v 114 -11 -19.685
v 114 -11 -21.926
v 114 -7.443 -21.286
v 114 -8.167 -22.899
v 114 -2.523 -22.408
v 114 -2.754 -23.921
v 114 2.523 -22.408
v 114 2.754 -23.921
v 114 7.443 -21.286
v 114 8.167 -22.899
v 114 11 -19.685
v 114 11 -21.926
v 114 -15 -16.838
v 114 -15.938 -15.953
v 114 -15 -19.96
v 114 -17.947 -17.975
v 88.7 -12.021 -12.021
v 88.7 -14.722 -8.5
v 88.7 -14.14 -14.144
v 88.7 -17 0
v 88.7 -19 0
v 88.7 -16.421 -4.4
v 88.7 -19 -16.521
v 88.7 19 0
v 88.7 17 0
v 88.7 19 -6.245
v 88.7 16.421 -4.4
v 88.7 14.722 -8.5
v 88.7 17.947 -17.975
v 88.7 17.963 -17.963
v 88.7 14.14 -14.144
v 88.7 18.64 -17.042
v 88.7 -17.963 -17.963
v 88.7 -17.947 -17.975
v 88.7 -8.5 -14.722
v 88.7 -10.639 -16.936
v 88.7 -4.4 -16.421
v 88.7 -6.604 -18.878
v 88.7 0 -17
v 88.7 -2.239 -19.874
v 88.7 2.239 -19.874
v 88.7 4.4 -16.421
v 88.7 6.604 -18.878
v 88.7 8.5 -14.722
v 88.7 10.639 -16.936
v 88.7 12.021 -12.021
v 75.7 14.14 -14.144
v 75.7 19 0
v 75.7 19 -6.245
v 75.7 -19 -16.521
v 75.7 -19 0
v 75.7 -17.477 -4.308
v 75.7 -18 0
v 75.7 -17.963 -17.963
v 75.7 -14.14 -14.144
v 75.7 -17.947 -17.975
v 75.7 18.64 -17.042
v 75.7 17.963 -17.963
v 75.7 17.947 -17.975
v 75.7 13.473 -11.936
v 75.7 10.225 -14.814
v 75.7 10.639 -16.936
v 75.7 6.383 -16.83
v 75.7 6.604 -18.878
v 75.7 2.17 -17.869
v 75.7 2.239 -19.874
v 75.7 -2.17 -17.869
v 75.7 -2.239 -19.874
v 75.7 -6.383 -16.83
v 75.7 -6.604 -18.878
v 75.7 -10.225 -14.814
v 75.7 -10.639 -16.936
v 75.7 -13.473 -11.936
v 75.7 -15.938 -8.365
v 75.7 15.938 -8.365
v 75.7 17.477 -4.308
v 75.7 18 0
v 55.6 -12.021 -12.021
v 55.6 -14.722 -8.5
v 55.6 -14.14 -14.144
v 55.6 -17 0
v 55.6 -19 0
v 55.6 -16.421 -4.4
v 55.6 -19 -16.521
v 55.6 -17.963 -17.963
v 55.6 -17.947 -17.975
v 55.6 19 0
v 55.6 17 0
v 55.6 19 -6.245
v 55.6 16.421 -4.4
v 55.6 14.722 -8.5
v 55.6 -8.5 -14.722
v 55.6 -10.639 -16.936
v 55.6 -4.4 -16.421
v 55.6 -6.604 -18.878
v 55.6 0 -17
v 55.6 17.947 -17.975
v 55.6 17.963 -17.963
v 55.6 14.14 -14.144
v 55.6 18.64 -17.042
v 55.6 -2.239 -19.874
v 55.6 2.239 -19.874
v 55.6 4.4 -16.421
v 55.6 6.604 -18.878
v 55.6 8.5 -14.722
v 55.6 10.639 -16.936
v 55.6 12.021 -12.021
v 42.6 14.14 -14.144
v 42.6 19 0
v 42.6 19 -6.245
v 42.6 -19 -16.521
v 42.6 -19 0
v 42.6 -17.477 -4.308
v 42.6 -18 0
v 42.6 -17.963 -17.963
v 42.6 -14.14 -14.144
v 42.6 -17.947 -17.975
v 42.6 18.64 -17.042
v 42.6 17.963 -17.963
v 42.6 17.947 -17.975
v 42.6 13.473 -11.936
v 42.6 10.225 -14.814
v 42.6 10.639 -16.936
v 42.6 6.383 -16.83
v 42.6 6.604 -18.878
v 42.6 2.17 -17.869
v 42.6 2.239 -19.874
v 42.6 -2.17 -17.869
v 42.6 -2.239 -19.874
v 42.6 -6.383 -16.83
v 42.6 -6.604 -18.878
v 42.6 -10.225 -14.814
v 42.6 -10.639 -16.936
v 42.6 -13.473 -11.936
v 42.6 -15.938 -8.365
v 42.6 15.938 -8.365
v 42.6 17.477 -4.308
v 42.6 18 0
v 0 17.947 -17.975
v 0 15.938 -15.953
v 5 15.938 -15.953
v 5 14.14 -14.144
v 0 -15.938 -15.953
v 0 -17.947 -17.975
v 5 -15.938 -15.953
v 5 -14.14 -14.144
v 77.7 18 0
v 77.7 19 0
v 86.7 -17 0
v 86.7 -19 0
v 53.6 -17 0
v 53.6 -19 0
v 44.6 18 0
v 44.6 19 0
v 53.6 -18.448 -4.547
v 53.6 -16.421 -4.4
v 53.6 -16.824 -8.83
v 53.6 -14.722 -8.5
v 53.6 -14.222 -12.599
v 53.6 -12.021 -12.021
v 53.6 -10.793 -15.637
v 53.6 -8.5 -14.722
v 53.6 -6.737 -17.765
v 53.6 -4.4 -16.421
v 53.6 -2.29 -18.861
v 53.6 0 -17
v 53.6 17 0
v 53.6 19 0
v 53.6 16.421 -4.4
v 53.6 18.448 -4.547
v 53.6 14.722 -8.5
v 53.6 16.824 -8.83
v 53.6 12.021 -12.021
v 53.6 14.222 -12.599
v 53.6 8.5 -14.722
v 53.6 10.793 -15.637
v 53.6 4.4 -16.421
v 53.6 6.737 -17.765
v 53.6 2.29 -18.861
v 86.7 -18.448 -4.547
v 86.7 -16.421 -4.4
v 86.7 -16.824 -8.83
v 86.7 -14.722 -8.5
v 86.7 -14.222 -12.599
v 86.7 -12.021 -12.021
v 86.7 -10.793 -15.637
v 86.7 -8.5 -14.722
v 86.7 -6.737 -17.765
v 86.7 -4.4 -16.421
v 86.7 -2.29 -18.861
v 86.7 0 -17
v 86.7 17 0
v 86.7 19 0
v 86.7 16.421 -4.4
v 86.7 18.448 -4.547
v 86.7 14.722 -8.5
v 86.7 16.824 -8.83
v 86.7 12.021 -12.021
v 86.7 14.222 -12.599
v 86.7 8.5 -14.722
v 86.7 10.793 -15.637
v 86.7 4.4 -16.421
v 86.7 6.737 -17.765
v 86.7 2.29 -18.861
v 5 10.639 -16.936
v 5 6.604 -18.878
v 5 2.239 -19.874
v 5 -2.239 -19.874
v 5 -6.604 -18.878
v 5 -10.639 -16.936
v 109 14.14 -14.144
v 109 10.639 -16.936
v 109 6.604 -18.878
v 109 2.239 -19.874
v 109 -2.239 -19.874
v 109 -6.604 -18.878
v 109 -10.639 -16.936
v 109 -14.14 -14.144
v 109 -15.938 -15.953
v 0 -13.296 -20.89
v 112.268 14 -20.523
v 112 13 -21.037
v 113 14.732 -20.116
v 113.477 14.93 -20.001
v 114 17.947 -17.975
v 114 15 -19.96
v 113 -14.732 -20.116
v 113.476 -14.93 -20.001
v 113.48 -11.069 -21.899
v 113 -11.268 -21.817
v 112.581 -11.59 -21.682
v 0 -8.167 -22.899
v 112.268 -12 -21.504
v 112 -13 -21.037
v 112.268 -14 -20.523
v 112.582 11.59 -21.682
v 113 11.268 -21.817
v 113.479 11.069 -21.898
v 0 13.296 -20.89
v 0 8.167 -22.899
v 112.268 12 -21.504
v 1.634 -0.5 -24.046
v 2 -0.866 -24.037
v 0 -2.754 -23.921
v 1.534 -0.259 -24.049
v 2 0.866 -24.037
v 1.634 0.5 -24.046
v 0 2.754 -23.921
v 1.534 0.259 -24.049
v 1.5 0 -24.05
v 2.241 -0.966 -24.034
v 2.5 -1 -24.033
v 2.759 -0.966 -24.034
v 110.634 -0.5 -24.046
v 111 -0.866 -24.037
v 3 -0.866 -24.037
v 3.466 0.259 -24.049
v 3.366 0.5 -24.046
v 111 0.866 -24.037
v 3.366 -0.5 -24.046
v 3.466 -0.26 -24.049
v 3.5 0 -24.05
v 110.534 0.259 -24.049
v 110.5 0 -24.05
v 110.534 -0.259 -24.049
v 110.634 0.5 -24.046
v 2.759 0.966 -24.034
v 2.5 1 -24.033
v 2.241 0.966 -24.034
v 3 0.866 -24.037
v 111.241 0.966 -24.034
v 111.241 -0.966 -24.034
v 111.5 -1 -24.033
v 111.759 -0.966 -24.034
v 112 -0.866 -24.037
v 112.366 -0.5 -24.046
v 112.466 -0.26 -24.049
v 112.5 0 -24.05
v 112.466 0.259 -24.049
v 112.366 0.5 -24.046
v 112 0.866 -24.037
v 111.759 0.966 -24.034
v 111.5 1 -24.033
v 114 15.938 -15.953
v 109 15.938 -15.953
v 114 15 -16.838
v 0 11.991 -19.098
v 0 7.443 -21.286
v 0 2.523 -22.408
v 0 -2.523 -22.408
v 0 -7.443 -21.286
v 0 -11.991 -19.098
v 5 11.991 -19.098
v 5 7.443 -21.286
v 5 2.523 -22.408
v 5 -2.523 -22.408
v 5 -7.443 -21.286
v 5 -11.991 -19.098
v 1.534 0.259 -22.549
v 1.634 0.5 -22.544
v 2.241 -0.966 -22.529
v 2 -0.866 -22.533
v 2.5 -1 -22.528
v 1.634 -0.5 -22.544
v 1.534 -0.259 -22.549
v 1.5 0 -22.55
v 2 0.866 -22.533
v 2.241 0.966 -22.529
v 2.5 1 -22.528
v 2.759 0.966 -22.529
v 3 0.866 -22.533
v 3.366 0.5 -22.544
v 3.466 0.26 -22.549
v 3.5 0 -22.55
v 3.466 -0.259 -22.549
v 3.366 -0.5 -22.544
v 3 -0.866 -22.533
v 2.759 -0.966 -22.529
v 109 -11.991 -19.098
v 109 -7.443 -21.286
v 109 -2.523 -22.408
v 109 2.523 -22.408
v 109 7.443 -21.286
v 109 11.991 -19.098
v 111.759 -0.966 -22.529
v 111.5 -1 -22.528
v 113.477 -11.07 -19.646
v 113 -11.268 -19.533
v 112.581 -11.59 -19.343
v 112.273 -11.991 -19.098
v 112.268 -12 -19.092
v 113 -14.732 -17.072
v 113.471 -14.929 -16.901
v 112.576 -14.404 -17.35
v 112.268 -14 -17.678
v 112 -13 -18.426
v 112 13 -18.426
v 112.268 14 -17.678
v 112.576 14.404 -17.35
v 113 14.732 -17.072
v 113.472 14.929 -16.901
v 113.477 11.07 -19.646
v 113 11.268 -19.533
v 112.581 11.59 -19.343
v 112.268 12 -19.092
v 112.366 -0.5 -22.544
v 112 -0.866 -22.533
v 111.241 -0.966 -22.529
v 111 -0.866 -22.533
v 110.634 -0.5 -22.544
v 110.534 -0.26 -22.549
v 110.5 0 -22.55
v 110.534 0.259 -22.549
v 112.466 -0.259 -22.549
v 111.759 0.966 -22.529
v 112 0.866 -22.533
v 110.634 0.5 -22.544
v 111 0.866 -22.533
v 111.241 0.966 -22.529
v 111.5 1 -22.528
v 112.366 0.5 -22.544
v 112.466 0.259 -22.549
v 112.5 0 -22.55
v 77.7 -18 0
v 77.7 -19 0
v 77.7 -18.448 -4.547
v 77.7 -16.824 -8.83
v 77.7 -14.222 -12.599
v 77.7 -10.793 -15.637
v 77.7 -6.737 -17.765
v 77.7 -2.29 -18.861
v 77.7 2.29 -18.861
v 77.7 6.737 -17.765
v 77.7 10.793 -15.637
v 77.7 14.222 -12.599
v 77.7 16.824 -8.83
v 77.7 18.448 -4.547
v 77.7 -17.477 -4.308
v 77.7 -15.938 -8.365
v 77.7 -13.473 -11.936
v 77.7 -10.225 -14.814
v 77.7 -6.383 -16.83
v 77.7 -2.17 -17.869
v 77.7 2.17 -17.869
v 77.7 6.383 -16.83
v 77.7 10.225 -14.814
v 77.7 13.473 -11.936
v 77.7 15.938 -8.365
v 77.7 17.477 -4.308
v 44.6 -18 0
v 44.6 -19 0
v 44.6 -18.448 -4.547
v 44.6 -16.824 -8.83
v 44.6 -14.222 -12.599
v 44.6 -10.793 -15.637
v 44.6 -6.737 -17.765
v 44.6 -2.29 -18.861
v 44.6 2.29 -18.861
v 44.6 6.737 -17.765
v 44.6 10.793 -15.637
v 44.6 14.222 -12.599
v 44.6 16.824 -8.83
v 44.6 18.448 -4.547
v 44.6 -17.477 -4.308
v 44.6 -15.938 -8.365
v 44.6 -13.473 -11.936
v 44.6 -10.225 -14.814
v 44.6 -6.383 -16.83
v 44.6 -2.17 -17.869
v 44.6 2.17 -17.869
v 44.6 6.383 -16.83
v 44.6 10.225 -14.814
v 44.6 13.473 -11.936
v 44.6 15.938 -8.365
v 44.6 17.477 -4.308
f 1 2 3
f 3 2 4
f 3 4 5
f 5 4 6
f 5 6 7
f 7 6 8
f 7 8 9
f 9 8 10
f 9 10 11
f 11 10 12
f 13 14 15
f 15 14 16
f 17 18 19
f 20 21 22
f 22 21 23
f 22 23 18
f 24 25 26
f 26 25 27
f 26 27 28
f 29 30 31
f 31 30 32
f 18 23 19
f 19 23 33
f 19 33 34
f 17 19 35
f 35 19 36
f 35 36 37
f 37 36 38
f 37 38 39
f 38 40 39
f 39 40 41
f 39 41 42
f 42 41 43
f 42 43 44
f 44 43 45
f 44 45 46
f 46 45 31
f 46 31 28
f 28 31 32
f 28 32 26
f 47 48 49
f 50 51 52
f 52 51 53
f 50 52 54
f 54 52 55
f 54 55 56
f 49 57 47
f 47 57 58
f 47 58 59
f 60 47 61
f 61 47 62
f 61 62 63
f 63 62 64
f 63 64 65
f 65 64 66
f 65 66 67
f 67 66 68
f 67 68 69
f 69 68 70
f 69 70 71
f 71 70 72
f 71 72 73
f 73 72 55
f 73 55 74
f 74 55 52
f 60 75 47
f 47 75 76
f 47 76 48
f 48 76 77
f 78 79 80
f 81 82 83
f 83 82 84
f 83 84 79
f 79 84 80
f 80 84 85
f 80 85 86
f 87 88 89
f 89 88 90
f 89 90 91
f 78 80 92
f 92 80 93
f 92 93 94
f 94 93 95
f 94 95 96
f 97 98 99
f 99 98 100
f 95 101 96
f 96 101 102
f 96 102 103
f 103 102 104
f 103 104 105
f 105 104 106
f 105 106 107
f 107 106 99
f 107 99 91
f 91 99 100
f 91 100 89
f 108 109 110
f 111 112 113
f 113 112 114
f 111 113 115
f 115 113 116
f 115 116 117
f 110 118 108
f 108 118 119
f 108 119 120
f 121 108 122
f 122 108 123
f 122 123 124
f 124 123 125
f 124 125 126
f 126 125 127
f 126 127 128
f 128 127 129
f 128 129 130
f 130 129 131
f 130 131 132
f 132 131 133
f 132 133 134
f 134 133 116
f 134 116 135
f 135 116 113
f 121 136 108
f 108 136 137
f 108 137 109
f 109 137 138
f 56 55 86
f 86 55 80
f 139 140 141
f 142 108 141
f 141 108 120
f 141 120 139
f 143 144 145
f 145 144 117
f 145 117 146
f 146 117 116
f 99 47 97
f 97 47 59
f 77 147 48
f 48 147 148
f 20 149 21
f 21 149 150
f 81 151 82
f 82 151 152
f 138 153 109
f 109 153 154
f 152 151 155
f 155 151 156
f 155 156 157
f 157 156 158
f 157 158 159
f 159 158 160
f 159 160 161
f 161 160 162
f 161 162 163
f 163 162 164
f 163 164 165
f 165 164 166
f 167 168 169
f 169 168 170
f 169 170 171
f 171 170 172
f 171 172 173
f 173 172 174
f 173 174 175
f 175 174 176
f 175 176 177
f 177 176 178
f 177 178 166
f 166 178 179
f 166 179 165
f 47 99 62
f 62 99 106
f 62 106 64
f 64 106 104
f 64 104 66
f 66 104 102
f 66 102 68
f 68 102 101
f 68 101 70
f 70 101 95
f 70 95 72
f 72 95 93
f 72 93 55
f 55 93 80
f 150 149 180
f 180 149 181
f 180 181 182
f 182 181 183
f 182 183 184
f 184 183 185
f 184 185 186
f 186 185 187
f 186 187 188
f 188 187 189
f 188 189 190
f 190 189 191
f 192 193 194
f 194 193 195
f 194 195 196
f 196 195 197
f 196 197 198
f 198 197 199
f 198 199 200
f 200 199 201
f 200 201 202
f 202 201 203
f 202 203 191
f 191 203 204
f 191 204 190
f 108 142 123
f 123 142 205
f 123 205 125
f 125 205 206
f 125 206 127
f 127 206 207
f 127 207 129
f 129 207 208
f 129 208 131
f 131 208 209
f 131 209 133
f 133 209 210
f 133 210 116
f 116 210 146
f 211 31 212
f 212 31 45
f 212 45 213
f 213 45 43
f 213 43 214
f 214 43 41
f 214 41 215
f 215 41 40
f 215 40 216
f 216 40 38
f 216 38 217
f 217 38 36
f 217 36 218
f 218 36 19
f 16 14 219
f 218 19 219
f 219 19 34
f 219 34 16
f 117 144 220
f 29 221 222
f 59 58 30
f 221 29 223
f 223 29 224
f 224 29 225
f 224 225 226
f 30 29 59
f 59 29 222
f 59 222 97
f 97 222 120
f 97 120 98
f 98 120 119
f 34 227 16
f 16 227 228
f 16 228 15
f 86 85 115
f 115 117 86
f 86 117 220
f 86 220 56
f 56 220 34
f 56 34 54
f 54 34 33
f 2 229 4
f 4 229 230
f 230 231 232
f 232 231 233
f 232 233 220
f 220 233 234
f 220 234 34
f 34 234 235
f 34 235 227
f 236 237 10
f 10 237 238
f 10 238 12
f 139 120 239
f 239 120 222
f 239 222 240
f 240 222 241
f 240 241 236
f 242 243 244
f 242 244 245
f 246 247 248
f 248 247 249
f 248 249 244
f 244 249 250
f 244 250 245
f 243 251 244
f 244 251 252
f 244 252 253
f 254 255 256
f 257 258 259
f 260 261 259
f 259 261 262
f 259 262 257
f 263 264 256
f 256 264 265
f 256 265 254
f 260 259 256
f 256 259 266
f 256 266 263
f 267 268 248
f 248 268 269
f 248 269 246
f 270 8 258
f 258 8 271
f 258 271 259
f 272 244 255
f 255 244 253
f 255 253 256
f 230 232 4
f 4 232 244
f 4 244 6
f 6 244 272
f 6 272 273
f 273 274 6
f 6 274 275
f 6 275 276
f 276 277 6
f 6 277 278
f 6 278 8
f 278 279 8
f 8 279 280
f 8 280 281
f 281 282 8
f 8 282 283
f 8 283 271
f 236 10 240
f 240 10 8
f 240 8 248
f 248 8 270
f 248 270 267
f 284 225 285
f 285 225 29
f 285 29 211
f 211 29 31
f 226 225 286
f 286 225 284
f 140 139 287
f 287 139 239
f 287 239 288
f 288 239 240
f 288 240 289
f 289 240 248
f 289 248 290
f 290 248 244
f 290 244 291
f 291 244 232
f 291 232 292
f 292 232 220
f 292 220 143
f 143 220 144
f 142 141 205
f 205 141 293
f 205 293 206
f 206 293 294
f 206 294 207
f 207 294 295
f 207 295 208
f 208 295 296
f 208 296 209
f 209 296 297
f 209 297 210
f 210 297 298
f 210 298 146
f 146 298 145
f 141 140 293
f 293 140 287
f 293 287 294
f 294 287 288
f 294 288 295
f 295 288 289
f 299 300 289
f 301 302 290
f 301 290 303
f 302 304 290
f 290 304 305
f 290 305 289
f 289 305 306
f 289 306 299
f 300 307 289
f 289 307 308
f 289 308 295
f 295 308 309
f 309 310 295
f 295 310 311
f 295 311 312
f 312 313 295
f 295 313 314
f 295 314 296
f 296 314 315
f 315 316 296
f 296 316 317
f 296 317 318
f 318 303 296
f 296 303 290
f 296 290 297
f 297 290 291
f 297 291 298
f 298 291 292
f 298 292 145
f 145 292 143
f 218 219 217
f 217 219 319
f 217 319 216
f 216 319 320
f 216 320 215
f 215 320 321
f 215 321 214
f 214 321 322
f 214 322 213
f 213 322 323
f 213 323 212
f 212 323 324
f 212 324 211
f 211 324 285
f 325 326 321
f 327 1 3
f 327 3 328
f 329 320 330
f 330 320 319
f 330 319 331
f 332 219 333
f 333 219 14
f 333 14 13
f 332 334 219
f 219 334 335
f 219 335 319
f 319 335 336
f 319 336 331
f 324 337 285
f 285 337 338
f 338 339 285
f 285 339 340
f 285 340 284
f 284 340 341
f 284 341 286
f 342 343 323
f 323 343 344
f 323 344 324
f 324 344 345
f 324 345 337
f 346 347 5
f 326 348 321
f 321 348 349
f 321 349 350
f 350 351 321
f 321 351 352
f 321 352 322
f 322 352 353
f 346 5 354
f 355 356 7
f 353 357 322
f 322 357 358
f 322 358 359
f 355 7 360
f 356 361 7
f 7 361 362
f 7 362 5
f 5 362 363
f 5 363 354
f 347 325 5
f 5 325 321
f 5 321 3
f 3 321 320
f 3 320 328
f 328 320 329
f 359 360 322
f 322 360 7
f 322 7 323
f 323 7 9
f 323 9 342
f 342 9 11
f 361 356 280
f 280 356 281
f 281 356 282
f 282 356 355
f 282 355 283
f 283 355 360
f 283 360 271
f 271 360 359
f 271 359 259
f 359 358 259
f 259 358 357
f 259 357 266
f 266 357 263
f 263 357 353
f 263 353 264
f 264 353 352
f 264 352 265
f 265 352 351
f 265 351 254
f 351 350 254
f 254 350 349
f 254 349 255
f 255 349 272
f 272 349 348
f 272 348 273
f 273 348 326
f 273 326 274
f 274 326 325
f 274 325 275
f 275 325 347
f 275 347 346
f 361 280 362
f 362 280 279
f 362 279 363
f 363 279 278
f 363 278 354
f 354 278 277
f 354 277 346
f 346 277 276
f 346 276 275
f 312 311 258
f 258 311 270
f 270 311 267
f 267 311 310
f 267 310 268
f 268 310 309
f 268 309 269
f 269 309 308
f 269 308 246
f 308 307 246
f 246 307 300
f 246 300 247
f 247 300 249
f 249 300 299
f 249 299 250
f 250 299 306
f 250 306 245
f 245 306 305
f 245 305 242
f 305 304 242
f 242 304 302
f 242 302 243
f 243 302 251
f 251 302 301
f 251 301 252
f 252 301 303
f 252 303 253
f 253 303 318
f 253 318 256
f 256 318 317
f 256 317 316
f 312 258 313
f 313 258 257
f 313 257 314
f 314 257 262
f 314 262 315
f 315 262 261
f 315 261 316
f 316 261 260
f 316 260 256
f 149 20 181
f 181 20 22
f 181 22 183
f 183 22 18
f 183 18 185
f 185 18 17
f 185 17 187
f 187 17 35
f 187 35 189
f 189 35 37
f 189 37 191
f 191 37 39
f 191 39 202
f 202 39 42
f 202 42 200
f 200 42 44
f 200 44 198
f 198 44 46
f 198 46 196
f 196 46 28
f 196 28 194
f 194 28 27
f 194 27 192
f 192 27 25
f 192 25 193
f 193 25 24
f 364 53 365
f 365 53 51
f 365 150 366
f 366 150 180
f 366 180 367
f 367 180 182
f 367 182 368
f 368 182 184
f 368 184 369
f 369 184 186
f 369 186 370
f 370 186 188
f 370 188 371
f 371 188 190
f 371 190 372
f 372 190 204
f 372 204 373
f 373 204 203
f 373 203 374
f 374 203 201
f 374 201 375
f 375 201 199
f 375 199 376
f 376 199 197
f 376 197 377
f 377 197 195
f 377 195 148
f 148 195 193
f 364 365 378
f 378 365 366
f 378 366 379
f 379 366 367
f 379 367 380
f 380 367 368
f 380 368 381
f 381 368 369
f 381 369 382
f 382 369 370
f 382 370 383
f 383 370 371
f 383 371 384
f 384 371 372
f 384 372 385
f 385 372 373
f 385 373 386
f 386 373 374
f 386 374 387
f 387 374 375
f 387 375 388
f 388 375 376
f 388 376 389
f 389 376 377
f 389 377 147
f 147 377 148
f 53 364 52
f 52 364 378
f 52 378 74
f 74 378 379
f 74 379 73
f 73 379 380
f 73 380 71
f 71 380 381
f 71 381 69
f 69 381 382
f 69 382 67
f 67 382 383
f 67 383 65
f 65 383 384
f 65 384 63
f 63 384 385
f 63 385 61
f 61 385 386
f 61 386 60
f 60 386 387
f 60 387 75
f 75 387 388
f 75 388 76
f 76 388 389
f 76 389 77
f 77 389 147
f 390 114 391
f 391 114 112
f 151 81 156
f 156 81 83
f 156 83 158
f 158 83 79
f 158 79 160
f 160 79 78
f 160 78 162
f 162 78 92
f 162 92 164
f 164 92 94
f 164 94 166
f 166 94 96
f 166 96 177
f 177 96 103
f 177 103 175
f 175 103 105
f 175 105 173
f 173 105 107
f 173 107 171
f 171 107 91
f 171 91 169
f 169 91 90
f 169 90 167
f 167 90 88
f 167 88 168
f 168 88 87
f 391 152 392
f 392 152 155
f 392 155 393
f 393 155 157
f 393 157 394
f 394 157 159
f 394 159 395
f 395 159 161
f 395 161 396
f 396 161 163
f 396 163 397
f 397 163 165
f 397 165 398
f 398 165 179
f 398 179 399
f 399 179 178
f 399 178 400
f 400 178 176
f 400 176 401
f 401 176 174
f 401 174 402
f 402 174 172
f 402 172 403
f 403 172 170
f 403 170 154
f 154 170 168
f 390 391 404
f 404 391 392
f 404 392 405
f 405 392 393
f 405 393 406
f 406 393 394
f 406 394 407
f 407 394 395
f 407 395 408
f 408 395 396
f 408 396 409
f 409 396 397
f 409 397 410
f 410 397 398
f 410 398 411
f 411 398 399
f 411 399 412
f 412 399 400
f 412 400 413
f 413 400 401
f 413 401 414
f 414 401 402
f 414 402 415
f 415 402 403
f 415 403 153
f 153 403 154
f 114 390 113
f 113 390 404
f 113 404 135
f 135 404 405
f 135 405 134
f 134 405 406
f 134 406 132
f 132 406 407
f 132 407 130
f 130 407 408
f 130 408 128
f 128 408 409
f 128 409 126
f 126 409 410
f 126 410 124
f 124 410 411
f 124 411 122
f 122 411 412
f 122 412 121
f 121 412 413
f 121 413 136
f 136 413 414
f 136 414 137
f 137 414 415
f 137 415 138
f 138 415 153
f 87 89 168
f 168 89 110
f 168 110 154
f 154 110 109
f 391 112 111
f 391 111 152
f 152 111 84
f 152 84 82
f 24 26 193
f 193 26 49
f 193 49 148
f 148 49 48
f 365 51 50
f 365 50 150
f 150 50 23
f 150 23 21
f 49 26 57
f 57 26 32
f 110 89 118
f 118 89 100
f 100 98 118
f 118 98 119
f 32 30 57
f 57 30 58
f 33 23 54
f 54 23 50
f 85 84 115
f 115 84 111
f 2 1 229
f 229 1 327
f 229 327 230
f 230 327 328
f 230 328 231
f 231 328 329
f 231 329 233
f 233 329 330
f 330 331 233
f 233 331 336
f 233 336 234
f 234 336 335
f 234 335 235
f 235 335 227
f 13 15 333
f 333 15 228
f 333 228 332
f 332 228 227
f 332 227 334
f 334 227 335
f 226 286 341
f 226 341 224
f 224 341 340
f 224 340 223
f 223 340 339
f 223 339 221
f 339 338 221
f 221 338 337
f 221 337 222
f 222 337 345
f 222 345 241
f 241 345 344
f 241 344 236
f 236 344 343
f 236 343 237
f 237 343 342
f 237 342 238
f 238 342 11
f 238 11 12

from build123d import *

# Parameters (mm, degrees)
BOSS_EXTRU_1_DEPTH           = 114
ESQUISSE2_R                  = 22.55
ENL_V_MAT_EXTRU_2_DEPTH      = 5
ENL_V_START                  = -5
ESQUISSE4_R                  = 22.55
ENL_V_MAT_EXTRU_3_DEPTH      = 5
ESQUISSE5_R                  = 1
ENL_V_MAT_EXTRU_4_DEPTH      = 118.883477756
BOSS_EXTRU_2_START           = -2
BOSS_EXTRU_2_DEPTH           = 2
BOSS_EXTRU_3_START           = 9
BOSS_EXTRU_3_DEPTH           = 9
BOSS_EXTRU_4_START           = 2
BOSS_EXTRU_4_DEPTH           = 2
BOSS_EXTRU_5_START           = -2
BOSS_EXTRU_5_DEPTH           = 2
BOSS_EXTRU_6_START           = 9
BOSS_EXTRU_6_DEPTH           = 9
BOSS_EXTRU_7_START           = 2
BOSS_EXTRU_7_DEPTH           = 2
ESQUISSE12_W                 = 13.751826503
ESQUISSE12_H                 = 1
ESQUISSE12_W_2               = 11.167500513
ENL_V_MAT_EXTRU_5_DEPTH      = 95.05366831
BOSS_EXTRU_8_START           = -13
BOSS_EXTRU_8_DEPTH           = 13
BOSS_EXTRU_9_START           = -13
BOSS_EXTRU_9_DEPTH           = 13
ENL_V_MAT_EXTRU_6_DEPTH      = 94.846110875
ENL_V_MAT_EXTRU_7_DEPTH      = 119.048305907
ENL_V_MAT_EXTRU_7_DEPTH_BACK = 119.048305907
ESQUISSE16_R                 = 2


with BuildPart() as part:
    # Esquisse1 → Boss.-Extru.1 (new body)
    with BuildSketch(Plane(origin=(0, 0, 0), x_dir=(0, 0, -1), z_dir=(1, 0, 0))):
        with BuildLine():
            Line((14.144270925, 14.14), (17.975320492, 17.947474134))
            ThreePointArc((17.975320492, 17.947474134), (24.05, 0), (17.975320492, -17.947474134))
            Line((17.975320492, -17.947474134), (14.144270925, -14.14))
            ThreePointArc((14.144270925, -14.14), (20, 0), (14.144270925, 14.14))
        make_face()
    extrude(amount=BOSS_EXTRU_1_DEPTH)

    # Esquisse2 → Enlèv. mat.-Extru.2 (cut)
    with BuildSketch(Plane.ZY):
        Circle(ESQUISSE2_R)
    extrude(amount=-ENL_V_MAT_EXTRU_2_DEPTH, mode=Mode.SUBTRACT)

    # Esquisse4 → Enlèv. mat.-Extru.3 (cut)
    with BuildSketch(Plane(origin=(114, 0, 0), x_dir=(0, 0, -1), z_dir=(1, 0, 0)).offset(ENL_V_START)):
        Circle(ESQUISSE4_R)
    extrude(amount=ENL_V_MAT_EXTRU_3_DEPTH, mode=Mode.SUBTRACT)

    # Esquisse5 → Enlèv. mat.-Extru.4 (cut, through all)
    with BuildSketch(Plane.XY):
        with Locations((2.5, 0)):
            Circle(ESQUISSE5_R)
        with Locations((111.5, 0)):
            Circle(ESQUISSE5_R)
    extrude(amount=-ENL_V_MAT_EXTRU_4_DEPTH, mode=Mode.SUBTRACT)

    # Esquisse6 → Boss.-Extru.2 (add)
    with BuildSketch(Plane(origin=(88.7, 0, 0), x_dir=(0, 0, -1), z_dir=(1, 0, 0)).offset(BOSS_EXTRU_2_START)):
        with BuildLine():
            Line((0, 17), (0, 20))
            ThreePointArc((0, 20), (20, 0), (0, -20))
            Line((0, -20), (0, -17))
            ThreePointArc((0, -17), (17, 0), (0, 17))
        make_face()
    extrude(amount=BOSS_EXTRU_2_DEPTH)

    # Esquisse7 → Boss.-Extru.3 (add)
    with BuildSketch(Plane.ZY.offset(-86.7).offset(BOSS_EXTRU_3_START)):
        with BuildLine():
            Line((0, 20), (0, 19))
            ThreePointArc((0, 19), (-19, 0), (0, -19))
            Line((0, -19), (0, -20))
            ThreePointArc((0, -20), (-20, 0), (0, 20))
        make_face()
    extrude(amount=-BOSS_EXTRU_3_DEPTH)

    # Esquisse8 → Boss.-Extru.4 (add)
    with BuildSketch(Plane.ZY.offset(-77.7).offset(BOSS_EXTRU_4_START)):
        with BuildLine():
            Line((0, 20), (0, 18))
            ThreePointArc((0, 18), (-18, 0), (0, -18))
            Line((0, -18), (0, -20))
            ThreePointArc((0, -20), (-20, 0), (0, 20))
        make_face()
    extrude(amount=-BOSS_EXTRU_4_DEPTH)

    # Esquisse9 → Boss.-Extru.5 (add)
    with BuildSketch(Plane(origin=(55.6, 0, 0), x_dir=(0, 0, -1), z_dir=(1, 0, 0)).offset(BOSS_EXTRU_5_START)):
        with BuildLine():
            Line((0, 20), (0, 17))
            ThreePointArc((0, 17), (17, 0), (0, -17))
            Line((0, -17), (0, -20))
            ThreePointArc((0, -20), (20, 0), (0, 20))
        make_face()
    extrude(amount=BOSS_EXTRU_5_DEPTH)

    # Esquisse10 → Boss.-Extru.6 (add)
    with BuildSketch(Plane.ZY.offset(-53.6).offset(BOSS_EXTRU_6_START)):
        with BuildLine():
            Line((0, 20), (0, 19))
            ThreePointArc((0, 19), (-19, 0), (0, -19))
            Line((0, -19), (0, -20))
            ThreePointArc((0, -20), (-20, 0), (0, 20))
        make_face()
    extrude(amount=-BOSS_EXTRU_6_DEPTH)

    # Esquisse11 → Boss.-Extru.7 (add)
    with BuildSketch(Plane.ZY.offset(-44.6).offset(BOSS_EXTRU_7_START)):
        with BuildLine():
            Line((0, 20), (0, 18))
            ThreePointArc((0, 18), (-18, 0), (0, -18))
            Line((0, -18), (0, -20))
            ThreePointArc((0, -20), (-20, 0), (0, 20))
        make_face()
    extrude(amount=-BOSS_EXTRU_7_DEPTH)

    # Esquisse12 → Enlèv. mat.-Extru.5 (cut, through all)
    with BuildSketch(Plane(origin=(88.7, 0, 0), x_dir=(0, 0, -1), z_dir=(1, 0, 0))):
        with Locations((6.875913252, -19.5)):
            Rectangle(ESQUISSE12_W, ESQUISSE12_H)
        with Locations((5.583750257, 19.5)):
            Rectangle(ESQUISSE12_W_2, ESQUISSE12_H)
    extrude(amount=-ENL_V_MAT_EXTRU_5_DEPTH, mode=Mode.SUBTRACT)

    # Esquisse13 → Boss.-Extru.8 (add)
    with BuildSketch(Plane(origin=(88.7, 0, 0), x_dir=(0, 0, -1), z_dir=(1, 0, 0)).offset(BOSS_EXTRU_8_START)):
        with BuildLine():
            Line((17.975320492, 17.947474134), (14.144270925, 14.14))
            ThreePointArc((14.144270925, 14.14), (10.480241973, 17.034216395), (6.244997998, 19))
            Line((6.244997998, 19), (17.4396757, 18.627232183))
            ThreePointArc((17.4396757, 18.627232183), (17.709986765, 18.289314213), (17.975320492, 17.947474134))
        make_face()
        with BuildLine():
            Line((14.144270925, -14.14), (17.975320492, -17.947474134))
            ThreePointArc((17.975320492, -17.947474134), (17.559611782, -18.478549847), (17.131891216, -19))
            Line((17.131891216, -19), (6.244997998, -19))
            ThreePointArc((6.244997998, -19), (10.480241973, -17.034216395), (14.144270925, -14.14))
        make_face()
    extrude(amount=BOSS_EXTRU_8_DEPTH)

    # Esquisse14 → Boss.-Extru.9 (add)
    with BuildSketch(Plane(origin=(55.6, 0, 0), x_dir=(0, 0, -1), z_dir=(1, 0, 0)).offset(BOSS_EXTRU_9_START)):
        with BuildLine():
            Line((14.144270925, 14.14), (17.975320492, 17.947474134))
            ThreePointArc((17.975320492, 17.947474134), (17.709986765, 18.289314213), (17.4396757, 18.627232183))
            Line((17.4396757, 18.627232183), (6.244997998, 19))
            ThreePointArc((6.244997998, 19), (10.480241973, 17.034216395), (14.144270925, 14.14))
        make_face()
        with BuildLine():
            Line((14.144270925, -14.14), (17.975320492, -17.947474134))
            ThreePointArc((17.975320492, -17.947474134), (17.559611782, -18.478549847), (17.131891216, -19))
            Line((17.131891216, -19), (6.244997998, -19))
            ThreePointArc((6.244997998, -19), (10.480241973, -17.034216395), (14.144270925, -14.14))
        make_face()
    extrude(amount=BOSS_EXTRU_9_DEPTH)

    # Esquisse15 → Enlèv. mat.-Extru.6 (cut, through all)
    with BuildSketch(Plane(origin=(88.7, 0, 0), x_dir=(0, 0, -1), z_dir=(1, 0, 0))):
        with BuildLine():
            Line((14.409304815, 20.298729325), (16.901493379, 24.760797344))
            Line((16.901493379, 24.760797344), (24.890475951, 20.298729325))
            Line((24.890475951, 20.298729325), (20.895984665, 15.394026057))
            ThreePointArc((20.895984665, 15.394026057), (17.822174246, 18.070587713), (14.409304815, 20.298729325))
        make_face()
        with BuildLine():
            Line((14.409304815, -20.298729325), (16.901493379, -24.760797344))
            Line((16.901493379, -24.760797344), (22.934233847, -18.464332541))
            Line((22.934233847, -18.464332541), (20.431131458, -15.848802481))
            ThreePointArc((20.431131458, -15.848802481), (17.561732891, -18.265269573), (14.409304815, -20.298729325))
        make_face()
    extrude(amount=-ENL_V_MAT_EXTRU_6_DEPTH, mode=Mode.SUBTRACT)

    # Esquisse16 → Enlèv. mat.-Extru.7 (cut, two sides: drawn at the far end of the back side and taken through both)
    with BuildSketch(Plane.XY.offset(-ENL_V_MAT_EXTRU_7_DEPTH_BACK)):
        with Locations((114, 13)):
            Circle(ESQUISSE16_R)
        with Locations((114, -13)):
            Circle(ESQUISSE16_R)
    extrude(amount=ENL_V_MAT_EXTRU_7_DEPTH + ENL_V_MAT_EXTRU_7_DEPTH_BACK, mode=Mode.SUBTRACT)


solid = part.part
